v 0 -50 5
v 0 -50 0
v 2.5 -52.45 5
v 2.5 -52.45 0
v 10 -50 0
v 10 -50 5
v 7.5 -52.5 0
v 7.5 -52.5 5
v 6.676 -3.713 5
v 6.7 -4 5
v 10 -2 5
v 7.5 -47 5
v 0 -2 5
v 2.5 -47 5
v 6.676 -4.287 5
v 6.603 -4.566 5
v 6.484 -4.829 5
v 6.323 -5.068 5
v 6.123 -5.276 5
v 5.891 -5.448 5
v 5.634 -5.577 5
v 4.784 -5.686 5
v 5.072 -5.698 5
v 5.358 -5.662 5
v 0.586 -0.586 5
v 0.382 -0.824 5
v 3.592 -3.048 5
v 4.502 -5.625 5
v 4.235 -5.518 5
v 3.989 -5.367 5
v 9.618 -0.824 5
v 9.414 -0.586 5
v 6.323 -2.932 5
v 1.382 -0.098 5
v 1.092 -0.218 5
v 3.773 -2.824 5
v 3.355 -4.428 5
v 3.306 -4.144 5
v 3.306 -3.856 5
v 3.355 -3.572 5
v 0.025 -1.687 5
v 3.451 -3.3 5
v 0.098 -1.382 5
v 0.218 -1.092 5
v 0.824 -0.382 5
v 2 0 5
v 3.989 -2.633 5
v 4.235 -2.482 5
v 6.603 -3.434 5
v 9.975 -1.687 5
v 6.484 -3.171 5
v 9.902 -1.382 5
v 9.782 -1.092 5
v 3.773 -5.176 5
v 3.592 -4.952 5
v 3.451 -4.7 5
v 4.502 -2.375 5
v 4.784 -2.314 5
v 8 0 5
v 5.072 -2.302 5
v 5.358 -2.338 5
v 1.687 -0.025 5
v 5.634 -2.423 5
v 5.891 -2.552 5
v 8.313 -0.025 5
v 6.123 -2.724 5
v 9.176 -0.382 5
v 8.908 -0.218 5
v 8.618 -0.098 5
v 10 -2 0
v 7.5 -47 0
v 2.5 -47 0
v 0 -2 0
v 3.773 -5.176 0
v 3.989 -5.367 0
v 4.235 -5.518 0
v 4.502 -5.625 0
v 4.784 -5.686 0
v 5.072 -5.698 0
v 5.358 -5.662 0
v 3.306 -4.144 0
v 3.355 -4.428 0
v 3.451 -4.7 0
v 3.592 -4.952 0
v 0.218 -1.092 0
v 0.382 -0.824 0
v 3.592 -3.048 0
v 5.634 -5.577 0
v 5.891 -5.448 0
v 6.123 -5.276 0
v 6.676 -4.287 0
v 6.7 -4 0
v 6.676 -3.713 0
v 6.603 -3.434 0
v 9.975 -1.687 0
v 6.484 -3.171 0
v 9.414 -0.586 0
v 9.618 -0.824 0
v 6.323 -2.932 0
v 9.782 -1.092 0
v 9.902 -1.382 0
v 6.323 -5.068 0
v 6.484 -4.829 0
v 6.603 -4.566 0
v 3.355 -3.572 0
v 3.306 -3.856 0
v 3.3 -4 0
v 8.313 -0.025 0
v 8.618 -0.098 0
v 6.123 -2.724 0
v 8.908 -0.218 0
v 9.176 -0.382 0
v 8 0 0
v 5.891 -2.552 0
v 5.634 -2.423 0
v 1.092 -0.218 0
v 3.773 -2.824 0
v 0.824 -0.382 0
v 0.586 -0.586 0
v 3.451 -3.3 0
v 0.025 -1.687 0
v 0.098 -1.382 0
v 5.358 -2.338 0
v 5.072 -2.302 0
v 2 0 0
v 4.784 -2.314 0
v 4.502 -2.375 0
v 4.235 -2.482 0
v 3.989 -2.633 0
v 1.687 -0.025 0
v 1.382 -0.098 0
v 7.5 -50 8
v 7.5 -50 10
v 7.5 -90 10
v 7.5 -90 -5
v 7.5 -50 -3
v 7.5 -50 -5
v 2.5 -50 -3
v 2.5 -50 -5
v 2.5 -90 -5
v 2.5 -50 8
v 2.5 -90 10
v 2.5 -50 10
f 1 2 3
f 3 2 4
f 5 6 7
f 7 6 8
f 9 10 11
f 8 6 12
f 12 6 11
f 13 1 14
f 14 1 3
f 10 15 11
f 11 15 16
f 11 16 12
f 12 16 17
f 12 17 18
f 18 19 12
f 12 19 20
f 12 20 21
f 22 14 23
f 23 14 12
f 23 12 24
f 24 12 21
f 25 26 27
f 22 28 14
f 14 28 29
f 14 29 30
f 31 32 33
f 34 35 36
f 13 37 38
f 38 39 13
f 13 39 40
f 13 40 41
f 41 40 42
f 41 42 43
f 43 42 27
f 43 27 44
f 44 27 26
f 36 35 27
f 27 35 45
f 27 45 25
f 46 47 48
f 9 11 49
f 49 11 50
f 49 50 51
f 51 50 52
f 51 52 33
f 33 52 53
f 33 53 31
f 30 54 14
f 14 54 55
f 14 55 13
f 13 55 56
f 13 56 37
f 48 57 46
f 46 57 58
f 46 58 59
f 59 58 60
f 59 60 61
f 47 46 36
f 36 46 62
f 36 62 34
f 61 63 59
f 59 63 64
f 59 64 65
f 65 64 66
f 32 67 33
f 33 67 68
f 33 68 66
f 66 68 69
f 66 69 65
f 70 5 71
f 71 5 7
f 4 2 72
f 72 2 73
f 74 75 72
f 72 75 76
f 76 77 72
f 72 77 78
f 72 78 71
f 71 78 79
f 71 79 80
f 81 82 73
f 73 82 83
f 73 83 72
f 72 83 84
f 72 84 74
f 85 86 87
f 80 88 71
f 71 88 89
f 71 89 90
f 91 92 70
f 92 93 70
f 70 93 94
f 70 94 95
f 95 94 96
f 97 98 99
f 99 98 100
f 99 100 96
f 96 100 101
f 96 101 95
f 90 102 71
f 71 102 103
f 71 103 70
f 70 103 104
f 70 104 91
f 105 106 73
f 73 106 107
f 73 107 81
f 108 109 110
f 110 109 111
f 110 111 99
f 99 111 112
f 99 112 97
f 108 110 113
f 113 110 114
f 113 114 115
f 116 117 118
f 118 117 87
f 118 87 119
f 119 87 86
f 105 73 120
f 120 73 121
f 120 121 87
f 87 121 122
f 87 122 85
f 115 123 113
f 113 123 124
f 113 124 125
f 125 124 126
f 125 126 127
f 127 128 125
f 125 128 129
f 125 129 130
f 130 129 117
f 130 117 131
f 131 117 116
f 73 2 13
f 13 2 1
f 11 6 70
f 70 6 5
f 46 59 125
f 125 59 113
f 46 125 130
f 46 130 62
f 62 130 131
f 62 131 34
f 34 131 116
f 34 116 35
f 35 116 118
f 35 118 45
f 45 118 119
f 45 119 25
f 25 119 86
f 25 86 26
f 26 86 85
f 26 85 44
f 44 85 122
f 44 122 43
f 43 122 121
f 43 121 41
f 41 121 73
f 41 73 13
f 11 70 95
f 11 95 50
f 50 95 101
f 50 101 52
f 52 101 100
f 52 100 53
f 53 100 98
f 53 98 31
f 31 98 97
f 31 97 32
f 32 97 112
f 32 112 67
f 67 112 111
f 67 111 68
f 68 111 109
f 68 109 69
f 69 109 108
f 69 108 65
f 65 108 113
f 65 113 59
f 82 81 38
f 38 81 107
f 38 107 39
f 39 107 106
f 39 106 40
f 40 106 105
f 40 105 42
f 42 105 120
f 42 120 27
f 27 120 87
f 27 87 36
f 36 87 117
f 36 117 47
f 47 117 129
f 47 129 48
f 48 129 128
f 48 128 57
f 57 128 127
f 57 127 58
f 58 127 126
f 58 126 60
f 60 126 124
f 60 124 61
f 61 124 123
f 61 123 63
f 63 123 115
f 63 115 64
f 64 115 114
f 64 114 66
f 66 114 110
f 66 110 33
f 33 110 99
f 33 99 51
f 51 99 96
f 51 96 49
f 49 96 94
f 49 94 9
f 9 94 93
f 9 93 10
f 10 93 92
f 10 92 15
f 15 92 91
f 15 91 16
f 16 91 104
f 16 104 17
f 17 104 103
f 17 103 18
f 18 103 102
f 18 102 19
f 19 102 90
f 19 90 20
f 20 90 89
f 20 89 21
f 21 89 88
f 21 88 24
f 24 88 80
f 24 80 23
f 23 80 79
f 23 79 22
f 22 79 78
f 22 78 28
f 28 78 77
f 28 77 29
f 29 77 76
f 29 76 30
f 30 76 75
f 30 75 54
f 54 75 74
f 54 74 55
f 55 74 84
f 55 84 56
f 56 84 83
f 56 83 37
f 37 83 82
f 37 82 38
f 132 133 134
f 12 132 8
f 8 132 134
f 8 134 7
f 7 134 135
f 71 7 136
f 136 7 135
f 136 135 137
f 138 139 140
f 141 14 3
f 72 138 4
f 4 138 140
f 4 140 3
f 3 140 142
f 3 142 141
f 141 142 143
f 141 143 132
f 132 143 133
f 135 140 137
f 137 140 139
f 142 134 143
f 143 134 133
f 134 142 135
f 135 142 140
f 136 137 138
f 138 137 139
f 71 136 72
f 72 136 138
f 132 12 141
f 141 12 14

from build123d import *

# Parameters (mm, degrees)
Y_KSEKLIK_EKSTR_ZYON1_DEPTH = 5
RADYUS1_R                   = 2
IZIM2_R                     = 1.7
KES_EKSTR_ZYON1_DEPTH       = 12
Y_KSEKLIK_EKSTR_ZYON2_DEPTH = 40
PAH1_SIZE                   = 3


with BuildPart() as part:
    # Çizim1 → Yükseklik-Ekstrüzyon1 (new body)
    with BuildSketch(Plane.XY):
        Polygon((0, 0), (10, 0), (10, -50), (5.050252532, -54.949747468), (0, -50), align=None)
    extrude(amount=Y_KSEKLIK_EKSTR_ZYON1_DEPTH)

    # Radyus1
    radyus1_edges = [part.edges().sort_by_distance(p)[0] for p in [
        (0, 0, 2.5),
        (10, 0, 2.5),
    ]]
    fillet(radyus1_edges, radius=RADYUS1_R)

    # Çizim2 → Kes-Ekstrüzyon1 (cut)
    with BuildSketch(Plane.XY.offset(5)):
        with Locations((5, -4)):
            Circle(IZIM2_R)
    extrude(amount=-KES_EKSTR_ZYON1_DEPTH, mode=Mode.SUBTRACT)

    # Çizim3 → Yükseklik-Ekstrüzyon2 (add)
    with BuildSketch(Plane.XZ.offset(50)):
        Polygon((7.5, 10), (2.5, 10), (2.5, -5), (3.3, -5), (7.5, -5), align=None)
    extrude(amount=Y_KSEKLIK_EKSTR_ZYON2_DEPTH)

    # Pah1
    pah1_edges = [part.edges().sort_by_distance(p)[0] for p in [
        (5, -50, 0),
        (5, -50, 5),
    ]]
    chamfer(pah1_edges, length=PAH1_SIZE)


solid = part.part
